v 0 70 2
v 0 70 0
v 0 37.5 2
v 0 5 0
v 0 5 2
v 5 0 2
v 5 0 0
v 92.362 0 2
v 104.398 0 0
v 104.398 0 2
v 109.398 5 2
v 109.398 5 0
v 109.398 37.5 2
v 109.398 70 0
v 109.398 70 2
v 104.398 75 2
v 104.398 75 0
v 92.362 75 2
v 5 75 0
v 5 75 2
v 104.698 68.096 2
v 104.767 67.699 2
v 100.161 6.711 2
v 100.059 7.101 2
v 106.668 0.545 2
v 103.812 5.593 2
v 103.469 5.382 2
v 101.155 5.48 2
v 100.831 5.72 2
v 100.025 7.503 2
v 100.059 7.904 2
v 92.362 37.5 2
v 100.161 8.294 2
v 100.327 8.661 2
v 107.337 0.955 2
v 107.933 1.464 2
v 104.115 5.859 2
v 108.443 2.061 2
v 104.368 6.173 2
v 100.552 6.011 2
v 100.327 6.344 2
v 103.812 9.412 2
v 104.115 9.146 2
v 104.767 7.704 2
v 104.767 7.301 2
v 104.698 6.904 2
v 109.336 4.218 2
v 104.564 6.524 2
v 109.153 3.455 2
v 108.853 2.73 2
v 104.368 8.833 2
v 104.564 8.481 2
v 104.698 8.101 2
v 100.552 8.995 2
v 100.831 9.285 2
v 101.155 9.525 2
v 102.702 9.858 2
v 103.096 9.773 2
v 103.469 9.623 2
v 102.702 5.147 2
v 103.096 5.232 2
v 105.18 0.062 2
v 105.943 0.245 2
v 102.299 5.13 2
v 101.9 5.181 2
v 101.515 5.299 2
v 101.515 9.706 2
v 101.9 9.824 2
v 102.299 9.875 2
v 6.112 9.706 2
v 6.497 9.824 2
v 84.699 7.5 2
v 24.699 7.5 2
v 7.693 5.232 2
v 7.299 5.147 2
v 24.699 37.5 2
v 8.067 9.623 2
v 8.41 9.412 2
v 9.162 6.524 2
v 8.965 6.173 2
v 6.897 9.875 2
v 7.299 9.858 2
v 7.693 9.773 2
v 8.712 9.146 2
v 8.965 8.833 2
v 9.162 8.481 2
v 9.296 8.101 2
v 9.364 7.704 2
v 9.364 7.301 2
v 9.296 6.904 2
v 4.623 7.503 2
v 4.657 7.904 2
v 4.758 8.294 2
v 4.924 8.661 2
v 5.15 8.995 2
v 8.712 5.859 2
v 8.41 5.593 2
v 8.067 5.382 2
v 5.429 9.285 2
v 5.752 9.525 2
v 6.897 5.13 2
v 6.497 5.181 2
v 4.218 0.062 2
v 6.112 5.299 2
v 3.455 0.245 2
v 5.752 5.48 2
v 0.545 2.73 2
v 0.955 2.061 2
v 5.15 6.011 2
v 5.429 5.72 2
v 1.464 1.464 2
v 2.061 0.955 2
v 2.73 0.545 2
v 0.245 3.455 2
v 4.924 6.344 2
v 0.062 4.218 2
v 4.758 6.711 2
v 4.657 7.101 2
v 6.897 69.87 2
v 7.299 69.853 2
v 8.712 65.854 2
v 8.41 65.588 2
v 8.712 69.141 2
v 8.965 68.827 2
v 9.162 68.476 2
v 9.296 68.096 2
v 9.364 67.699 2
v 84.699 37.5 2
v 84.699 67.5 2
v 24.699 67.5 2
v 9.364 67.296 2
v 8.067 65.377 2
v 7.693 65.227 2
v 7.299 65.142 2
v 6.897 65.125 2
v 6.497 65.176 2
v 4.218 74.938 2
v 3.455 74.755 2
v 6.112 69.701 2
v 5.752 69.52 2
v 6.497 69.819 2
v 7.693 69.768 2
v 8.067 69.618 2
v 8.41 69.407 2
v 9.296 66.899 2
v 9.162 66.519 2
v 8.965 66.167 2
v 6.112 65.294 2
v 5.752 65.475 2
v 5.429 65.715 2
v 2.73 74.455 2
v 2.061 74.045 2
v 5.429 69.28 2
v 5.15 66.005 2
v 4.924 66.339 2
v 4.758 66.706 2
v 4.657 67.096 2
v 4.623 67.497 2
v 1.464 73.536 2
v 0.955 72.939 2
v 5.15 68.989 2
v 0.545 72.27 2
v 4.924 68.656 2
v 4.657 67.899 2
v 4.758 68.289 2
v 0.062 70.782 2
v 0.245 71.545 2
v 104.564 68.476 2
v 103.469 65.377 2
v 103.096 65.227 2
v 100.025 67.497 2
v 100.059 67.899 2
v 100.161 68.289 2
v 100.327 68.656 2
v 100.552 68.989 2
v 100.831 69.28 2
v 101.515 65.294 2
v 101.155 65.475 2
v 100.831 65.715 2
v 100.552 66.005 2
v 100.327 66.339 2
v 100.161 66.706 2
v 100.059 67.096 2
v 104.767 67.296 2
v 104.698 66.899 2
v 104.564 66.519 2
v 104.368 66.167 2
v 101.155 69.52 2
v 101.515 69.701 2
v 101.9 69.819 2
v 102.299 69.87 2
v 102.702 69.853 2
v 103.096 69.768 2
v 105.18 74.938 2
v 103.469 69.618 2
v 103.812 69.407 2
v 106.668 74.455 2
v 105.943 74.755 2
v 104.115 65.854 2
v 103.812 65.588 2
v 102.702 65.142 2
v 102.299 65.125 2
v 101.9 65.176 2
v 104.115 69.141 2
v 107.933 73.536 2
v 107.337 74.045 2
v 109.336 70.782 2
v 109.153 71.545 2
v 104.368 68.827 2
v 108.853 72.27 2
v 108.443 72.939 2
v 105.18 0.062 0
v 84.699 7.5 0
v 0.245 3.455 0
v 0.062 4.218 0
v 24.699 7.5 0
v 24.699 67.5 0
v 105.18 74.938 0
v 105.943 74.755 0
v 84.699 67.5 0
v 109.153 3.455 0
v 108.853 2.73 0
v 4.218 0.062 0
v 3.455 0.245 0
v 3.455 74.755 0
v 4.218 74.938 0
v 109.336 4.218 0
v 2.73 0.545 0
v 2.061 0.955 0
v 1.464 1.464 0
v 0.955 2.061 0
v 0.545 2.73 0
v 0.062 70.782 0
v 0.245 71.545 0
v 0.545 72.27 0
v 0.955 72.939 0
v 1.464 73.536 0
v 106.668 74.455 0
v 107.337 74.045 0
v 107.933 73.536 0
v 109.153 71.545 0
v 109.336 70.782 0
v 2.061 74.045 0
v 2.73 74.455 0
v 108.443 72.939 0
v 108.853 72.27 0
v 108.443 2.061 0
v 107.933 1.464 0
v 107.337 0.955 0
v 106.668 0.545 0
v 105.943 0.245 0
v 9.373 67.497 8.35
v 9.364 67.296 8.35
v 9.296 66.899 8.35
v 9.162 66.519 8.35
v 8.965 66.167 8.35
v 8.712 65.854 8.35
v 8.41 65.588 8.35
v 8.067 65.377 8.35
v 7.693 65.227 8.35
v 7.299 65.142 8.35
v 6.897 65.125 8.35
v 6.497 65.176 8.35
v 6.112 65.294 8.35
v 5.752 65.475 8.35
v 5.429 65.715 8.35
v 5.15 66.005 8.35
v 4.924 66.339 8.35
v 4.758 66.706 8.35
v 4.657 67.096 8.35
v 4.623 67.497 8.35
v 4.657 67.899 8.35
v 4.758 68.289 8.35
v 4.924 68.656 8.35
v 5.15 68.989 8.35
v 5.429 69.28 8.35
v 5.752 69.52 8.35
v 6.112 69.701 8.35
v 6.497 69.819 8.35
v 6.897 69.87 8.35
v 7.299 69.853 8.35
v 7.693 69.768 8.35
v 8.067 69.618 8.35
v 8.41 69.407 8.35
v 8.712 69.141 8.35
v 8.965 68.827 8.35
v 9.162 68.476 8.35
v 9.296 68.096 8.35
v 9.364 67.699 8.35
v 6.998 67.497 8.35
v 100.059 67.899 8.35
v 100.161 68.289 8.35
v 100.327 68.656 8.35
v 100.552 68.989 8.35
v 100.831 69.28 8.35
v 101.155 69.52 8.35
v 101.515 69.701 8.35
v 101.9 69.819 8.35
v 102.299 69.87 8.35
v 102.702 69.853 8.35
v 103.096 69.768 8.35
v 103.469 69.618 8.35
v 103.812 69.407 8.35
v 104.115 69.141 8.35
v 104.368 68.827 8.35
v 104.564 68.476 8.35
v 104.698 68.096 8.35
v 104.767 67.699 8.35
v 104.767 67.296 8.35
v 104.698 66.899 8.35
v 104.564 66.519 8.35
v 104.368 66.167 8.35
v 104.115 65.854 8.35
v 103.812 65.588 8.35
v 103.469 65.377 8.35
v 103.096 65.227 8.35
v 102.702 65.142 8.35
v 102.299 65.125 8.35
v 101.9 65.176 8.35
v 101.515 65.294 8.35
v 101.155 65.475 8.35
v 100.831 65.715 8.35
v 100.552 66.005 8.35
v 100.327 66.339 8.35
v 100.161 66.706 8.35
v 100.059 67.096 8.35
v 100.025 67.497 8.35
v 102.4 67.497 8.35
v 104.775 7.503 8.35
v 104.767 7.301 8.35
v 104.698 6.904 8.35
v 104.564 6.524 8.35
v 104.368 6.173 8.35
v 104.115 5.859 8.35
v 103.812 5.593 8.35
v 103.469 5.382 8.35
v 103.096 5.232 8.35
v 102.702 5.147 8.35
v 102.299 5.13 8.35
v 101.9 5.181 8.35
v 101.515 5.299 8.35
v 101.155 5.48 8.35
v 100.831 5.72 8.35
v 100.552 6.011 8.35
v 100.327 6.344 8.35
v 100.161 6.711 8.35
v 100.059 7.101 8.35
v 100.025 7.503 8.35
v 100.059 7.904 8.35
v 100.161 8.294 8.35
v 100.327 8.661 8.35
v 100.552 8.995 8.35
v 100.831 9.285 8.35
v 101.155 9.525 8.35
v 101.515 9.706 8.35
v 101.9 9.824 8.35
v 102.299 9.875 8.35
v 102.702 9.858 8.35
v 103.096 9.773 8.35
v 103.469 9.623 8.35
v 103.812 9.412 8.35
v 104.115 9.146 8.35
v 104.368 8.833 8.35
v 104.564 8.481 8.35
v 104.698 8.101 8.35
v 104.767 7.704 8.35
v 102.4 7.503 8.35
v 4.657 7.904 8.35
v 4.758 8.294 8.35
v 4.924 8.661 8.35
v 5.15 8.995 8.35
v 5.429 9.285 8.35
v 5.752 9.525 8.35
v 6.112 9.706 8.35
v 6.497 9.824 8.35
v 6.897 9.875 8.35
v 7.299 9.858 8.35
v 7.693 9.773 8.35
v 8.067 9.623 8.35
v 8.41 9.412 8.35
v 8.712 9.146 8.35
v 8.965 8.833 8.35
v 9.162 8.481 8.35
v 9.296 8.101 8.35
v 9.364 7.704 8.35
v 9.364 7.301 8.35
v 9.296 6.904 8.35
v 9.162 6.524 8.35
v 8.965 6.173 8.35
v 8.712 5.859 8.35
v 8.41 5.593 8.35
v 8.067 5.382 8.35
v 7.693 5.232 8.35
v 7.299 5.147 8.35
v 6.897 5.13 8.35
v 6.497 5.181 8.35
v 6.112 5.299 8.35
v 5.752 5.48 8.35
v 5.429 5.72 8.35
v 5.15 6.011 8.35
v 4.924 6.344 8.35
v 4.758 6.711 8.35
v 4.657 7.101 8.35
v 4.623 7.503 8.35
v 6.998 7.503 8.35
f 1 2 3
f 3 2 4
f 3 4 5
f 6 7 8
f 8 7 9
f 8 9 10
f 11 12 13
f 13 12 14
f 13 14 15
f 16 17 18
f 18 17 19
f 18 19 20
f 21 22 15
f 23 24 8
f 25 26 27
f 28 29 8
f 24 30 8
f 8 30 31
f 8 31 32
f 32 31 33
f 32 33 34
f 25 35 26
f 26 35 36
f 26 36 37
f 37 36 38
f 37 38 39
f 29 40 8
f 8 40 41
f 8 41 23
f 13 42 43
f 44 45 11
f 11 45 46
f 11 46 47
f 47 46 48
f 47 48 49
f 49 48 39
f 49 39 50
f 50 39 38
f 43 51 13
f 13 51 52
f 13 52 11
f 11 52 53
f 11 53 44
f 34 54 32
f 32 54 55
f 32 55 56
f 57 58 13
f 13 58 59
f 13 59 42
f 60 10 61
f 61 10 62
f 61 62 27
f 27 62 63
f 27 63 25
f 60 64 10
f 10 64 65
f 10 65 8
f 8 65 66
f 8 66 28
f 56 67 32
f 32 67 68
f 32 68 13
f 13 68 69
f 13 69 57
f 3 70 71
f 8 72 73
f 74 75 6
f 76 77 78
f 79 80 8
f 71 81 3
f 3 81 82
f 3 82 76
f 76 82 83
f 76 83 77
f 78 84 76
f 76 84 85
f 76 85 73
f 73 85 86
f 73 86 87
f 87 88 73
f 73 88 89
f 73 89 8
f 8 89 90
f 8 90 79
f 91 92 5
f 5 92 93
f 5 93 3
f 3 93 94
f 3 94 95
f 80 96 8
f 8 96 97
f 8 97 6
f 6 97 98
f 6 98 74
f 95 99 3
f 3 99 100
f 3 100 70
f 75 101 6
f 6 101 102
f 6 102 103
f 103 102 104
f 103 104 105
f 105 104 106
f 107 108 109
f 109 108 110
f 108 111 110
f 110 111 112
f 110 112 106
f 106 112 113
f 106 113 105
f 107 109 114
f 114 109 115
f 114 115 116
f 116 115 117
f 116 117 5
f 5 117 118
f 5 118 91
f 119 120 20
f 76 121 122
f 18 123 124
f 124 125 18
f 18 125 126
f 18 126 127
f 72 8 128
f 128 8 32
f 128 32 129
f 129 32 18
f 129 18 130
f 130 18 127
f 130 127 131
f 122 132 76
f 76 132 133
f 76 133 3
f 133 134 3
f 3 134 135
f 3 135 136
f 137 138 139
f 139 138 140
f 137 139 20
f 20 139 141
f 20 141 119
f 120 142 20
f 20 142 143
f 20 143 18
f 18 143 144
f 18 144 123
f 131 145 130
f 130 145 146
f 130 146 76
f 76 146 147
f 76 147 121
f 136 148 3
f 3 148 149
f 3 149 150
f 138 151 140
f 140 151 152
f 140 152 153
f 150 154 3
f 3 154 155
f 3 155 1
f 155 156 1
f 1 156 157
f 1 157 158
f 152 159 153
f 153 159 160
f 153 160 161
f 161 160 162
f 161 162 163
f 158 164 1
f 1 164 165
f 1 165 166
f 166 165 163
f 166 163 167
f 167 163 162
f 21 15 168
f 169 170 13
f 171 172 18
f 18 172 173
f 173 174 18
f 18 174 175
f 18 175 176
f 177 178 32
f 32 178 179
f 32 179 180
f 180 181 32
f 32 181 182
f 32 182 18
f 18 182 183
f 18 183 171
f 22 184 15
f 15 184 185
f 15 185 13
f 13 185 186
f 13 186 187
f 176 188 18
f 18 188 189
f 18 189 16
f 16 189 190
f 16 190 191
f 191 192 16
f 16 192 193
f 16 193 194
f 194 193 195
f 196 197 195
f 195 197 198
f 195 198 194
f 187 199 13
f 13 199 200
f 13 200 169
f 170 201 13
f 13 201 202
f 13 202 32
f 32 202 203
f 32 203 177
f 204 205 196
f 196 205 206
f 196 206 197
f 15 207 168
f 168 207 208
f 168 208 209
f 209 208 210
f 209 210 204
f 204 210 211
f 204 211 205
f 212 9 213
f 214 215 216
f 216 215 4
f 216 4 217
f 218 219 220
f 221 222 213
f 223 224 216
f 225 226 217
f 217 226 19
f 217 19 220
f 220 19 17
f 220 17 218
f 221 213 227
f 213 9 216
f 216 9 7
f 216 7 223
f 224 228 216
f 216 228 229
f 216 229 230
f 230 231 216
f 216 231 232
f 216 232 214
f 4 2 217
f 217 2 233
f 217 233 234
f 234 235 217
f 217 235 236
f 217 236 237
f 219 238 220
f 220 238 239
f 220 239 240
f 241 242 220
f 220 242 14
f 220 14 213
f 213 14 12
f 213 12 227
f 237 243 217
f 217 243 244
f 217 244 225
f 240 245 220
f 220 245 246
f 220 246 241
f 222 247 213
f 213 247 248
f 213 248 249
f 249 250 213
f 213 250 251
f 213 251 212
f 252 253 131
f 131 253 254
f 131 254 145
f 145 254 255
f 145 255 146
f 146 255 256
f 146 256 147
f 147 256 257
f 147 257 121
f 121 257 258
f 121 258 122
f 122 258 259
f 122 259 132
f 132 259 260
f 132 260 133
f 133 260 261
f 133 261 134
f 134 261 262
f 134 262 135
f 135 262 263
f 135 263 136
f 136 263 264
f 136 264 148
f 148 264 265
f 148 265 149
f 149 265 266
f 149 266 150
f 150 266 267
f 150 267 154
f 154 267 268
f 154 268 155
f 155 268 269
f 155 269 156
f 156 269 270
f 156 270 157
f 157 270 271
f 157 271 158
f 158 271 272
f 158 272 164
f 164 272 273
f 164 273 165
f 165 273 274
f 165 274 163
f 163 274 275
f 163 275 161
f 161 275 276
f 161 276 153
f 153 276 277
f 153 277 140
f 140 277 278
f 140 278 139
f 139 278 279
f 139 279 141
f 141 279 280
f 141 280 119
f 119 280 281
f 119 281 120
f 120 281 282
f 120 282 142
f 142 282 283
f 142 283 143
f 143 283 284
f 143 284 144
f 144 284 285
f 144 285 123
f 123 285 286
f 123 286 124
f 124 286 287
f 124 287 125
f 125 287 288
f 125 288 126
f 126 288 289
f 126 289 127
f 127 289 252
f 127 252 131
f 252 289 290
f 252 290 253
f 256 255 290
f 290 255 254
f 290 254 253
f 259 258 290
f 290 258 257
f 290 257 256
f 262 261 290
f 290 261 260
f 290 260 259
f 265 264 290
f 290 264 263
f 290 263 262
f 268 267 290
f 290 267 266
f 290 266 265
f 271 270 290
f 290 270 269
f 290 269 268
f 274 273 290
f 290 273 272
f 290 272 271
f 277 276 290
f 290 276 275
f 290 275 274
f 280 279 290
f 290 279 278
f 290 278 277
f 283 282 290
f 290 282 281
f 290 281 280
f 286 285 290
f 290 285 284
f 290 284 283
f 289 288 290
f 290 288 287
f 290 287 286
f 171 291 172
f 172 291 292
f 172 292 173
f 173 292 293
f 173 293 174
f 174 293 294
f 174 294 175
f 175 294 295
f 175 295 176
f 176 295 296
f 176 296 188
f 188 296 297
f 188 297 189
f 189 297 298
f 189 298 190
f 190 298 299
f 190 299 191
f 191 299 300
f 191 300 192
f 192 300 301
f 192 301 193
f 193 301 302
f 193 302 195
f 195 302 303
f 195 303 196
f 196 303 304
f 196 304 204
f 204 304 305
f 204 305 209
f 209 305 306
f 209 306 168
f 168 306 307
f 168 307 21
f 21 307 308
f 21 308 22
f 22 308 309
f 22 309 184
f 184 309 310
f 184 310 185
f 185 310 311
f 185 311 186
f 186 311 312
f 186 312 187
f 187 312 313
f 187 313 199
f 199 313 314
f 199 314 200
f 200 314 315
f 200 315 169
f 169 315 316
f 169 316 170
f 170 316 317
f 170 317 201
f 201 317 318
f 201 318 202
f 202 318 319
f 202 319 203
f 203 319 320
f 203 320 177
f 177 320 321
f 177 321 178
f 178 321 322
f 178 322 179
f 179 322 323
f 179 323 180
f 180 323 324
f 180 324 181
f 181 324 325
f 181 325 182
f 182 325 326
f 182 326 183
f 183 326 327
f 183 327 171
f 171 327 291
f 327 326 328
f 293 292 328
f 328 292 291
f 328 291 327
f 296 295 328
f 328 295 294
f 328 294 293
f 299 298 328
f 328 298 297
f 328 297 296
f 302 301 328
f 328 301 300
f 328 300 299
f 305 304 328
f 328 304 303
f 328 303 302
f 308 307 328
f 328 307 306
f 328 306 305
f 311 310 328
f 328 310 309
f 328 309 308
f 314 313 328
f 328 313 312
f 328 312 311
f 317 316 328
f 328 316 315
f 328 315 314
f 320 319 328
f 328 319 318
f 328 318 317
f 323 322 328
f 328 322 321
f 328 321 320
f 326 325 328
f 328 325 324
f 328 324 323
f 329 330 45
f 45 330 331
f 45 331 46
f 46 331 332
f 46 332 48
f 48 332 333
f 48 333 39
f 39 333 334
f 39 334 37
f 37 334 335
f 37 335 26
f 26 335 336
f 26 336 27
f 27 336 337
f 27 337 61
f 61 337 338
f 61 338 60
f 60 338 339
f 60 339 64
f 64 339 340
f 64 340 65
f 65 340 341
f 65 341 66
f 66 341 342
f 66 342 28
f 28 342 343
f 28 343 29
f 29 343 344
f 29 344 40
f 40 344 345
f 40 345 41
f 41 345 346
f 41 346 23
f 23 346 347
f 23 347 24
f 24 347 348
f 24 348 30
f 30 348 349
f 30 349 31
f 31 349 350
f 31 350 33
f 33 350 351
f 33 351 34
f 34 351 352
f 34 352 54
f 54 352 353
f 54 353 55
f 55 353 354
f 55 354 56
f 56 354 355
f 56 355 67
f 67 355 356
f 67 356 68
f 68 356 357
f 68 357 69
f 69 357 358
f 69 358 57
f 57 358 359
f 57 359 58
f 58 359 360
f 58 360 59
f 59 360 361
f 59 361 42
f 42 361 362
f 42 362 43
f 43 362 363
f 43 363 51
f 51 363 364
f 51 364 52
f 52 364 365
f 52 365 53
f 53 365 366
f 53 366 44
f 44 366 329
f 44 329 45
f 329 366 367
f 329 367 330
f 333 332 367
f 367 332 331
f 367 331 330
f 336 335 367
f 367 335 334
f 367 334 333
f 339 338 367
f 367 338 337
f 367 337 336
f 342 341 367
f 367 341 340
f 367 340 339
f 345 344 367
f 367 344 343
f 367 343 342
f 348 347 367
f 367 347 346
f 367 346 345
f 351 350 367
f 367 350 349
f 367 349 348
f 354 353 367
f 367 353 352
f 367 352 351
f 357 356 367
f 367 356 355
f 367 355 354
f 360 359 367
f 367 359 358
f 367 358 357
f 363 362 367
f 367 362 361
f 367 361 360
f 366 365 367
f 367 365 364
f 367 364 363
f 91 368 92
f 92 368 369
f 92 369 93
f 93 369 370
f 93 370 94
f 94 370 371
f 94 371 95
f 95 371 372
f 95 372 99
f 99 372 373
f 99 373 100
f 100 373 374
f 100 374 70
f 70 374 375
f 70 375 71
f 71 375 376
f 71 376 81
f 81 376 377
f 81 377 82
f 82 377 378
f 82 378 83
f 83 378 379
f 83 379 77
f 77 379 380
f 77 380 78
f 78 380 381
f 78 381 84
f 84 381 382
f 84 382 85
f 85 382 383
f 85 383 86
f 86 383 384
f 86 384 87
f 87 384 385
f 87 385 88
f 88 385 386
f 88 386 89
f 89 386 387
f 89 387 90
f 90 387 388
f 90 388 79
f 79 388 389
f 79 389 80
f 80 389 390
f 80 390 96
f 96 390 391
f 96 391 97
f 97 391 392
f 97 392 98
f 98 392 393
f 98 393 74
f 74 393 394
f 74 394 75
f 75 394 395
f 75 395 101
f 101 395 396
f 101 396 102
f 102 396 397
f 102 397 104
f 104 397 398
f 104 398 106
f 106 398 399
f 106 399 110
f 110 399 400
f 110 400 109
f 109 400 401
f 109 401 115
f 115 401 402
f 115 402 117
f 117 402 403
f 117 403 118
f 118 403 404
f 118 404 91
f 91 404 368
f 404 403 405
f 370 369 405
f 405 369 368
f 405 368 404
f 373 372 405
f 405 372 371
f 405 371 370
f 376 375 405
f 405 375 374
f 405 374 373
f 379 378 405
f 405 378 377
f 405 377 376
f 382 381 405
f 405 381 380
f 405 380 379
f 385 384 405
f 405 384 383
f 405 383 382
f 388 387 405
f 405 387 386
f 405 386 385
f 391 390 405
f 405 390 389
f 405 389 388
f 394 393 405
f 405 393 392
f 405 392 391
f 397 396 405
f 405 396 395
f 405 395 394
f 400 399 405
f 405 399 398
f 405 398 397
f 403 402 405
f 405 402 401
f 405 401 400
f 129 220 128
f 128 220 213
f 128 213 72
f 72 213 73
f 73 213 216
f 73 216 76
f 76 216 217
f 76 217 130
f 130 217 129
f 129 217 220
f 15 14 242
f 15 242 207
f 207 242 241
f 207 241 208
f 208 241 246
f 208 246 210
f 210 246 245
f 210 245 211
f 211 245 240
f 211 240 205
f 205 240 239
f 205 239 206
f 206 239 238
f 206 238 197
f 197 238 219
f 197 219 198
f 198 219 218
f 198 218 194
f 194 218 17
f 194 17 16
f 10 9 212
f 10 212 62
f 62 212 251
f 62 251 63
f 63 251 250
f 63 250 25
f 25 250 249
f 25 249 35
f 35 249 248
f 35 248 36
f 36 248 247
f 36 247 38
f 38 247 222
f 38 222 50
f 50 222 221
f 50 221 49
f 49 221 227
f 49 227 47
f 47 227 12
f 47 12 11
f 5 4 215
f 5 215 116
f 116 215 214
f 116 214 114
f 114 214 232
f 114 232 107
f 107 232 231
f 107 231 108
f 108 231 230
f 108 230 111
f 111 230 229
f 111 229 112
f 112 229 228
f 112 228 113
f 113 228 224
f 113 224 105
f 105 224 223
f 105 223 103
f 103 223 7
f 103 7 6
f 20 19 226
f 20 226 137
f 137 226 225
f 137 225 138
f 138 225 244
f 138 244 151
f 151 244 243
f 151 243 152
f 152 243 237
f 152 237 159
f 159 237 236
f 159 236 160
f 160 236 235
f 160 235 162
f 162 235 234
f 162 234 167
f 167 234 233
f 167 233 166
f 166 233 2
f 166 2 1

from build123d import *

# Parameters (mm, degrees)
SKETCH1_W           = 109.3978
SKETCH1_H           = 75
BOSS_EXTRUDE1_DEPTH = 2
SKETCH2_R           = 2.375
BOSS_EXTRUDE2_DEPTH = 6.35
CUT_EXTRUDE1_REACH  = 4
SKETCH3_W           = 60
SKETCH3_H           = 60
FILLET1_R           = 5


with BuildPart() as part:
    # Sketch1 → Boss-Extrude1 (new body)
    with BuildSketch(Plane.XY):
        with Locations((54.6989, 37.5)):
            Rectangle(SKETCH1_W, SKETCH1_H)
    extrude(amount=BOSS_EXTRUDE1_DEPTH)

    # Sketch2 → Boss-Extrude2 (add)
    with BuildSketch(Plane.XY.offset(2)):
        with Locations((6.9977, 67.4974)):
            Circle(SKETCH2_R)
        with Locations((102.4001, 67.4974)):
            Circle(SKETCH2_R)
        with Locations((102.4001, 7.5026)):
            Circle(SKETCH2_R)
        with Locations((6.9977, 7.5026)):
            Circle(SKETCH2_R)
    extrude(amount=BOSS_EXTRUDE2_DEPTH)

    # Sketch3 → Cut-Extrude1 (cut, up to next)
    with BuildSketch(Plane.XY.offset(2), mode=Mode.PRIVATE) as cut_extrude1_sk1:
        with Locations((54.6989, 37.5)):
            Rectangle(SKETCH3_W, SKETCH3_H)
    cut_extrude1_tool1 = extrude(cut_extrude1_sk1.sketch, amount=-CUT_EXTRUDE1_REACH, mode=Mode.PRIVATE) & part.part
    add(cut_extrude1_tool1.solids().sort_by_distance((54.6989, 37.5, 2))[0], mode=Mode.SUBTRACT)

    # Fillet1
    fillet1_edges = [part.edges().sort_by_distance(p)[0] for p in [
        (0, 75, 1),
        (109.3978, 75, 1),
        (109.3978, 0, 1),
        (0, 0, 1),
    ]]
    fillet(fillet1_edges, radius=FILLET1_R)


solid = part.part
